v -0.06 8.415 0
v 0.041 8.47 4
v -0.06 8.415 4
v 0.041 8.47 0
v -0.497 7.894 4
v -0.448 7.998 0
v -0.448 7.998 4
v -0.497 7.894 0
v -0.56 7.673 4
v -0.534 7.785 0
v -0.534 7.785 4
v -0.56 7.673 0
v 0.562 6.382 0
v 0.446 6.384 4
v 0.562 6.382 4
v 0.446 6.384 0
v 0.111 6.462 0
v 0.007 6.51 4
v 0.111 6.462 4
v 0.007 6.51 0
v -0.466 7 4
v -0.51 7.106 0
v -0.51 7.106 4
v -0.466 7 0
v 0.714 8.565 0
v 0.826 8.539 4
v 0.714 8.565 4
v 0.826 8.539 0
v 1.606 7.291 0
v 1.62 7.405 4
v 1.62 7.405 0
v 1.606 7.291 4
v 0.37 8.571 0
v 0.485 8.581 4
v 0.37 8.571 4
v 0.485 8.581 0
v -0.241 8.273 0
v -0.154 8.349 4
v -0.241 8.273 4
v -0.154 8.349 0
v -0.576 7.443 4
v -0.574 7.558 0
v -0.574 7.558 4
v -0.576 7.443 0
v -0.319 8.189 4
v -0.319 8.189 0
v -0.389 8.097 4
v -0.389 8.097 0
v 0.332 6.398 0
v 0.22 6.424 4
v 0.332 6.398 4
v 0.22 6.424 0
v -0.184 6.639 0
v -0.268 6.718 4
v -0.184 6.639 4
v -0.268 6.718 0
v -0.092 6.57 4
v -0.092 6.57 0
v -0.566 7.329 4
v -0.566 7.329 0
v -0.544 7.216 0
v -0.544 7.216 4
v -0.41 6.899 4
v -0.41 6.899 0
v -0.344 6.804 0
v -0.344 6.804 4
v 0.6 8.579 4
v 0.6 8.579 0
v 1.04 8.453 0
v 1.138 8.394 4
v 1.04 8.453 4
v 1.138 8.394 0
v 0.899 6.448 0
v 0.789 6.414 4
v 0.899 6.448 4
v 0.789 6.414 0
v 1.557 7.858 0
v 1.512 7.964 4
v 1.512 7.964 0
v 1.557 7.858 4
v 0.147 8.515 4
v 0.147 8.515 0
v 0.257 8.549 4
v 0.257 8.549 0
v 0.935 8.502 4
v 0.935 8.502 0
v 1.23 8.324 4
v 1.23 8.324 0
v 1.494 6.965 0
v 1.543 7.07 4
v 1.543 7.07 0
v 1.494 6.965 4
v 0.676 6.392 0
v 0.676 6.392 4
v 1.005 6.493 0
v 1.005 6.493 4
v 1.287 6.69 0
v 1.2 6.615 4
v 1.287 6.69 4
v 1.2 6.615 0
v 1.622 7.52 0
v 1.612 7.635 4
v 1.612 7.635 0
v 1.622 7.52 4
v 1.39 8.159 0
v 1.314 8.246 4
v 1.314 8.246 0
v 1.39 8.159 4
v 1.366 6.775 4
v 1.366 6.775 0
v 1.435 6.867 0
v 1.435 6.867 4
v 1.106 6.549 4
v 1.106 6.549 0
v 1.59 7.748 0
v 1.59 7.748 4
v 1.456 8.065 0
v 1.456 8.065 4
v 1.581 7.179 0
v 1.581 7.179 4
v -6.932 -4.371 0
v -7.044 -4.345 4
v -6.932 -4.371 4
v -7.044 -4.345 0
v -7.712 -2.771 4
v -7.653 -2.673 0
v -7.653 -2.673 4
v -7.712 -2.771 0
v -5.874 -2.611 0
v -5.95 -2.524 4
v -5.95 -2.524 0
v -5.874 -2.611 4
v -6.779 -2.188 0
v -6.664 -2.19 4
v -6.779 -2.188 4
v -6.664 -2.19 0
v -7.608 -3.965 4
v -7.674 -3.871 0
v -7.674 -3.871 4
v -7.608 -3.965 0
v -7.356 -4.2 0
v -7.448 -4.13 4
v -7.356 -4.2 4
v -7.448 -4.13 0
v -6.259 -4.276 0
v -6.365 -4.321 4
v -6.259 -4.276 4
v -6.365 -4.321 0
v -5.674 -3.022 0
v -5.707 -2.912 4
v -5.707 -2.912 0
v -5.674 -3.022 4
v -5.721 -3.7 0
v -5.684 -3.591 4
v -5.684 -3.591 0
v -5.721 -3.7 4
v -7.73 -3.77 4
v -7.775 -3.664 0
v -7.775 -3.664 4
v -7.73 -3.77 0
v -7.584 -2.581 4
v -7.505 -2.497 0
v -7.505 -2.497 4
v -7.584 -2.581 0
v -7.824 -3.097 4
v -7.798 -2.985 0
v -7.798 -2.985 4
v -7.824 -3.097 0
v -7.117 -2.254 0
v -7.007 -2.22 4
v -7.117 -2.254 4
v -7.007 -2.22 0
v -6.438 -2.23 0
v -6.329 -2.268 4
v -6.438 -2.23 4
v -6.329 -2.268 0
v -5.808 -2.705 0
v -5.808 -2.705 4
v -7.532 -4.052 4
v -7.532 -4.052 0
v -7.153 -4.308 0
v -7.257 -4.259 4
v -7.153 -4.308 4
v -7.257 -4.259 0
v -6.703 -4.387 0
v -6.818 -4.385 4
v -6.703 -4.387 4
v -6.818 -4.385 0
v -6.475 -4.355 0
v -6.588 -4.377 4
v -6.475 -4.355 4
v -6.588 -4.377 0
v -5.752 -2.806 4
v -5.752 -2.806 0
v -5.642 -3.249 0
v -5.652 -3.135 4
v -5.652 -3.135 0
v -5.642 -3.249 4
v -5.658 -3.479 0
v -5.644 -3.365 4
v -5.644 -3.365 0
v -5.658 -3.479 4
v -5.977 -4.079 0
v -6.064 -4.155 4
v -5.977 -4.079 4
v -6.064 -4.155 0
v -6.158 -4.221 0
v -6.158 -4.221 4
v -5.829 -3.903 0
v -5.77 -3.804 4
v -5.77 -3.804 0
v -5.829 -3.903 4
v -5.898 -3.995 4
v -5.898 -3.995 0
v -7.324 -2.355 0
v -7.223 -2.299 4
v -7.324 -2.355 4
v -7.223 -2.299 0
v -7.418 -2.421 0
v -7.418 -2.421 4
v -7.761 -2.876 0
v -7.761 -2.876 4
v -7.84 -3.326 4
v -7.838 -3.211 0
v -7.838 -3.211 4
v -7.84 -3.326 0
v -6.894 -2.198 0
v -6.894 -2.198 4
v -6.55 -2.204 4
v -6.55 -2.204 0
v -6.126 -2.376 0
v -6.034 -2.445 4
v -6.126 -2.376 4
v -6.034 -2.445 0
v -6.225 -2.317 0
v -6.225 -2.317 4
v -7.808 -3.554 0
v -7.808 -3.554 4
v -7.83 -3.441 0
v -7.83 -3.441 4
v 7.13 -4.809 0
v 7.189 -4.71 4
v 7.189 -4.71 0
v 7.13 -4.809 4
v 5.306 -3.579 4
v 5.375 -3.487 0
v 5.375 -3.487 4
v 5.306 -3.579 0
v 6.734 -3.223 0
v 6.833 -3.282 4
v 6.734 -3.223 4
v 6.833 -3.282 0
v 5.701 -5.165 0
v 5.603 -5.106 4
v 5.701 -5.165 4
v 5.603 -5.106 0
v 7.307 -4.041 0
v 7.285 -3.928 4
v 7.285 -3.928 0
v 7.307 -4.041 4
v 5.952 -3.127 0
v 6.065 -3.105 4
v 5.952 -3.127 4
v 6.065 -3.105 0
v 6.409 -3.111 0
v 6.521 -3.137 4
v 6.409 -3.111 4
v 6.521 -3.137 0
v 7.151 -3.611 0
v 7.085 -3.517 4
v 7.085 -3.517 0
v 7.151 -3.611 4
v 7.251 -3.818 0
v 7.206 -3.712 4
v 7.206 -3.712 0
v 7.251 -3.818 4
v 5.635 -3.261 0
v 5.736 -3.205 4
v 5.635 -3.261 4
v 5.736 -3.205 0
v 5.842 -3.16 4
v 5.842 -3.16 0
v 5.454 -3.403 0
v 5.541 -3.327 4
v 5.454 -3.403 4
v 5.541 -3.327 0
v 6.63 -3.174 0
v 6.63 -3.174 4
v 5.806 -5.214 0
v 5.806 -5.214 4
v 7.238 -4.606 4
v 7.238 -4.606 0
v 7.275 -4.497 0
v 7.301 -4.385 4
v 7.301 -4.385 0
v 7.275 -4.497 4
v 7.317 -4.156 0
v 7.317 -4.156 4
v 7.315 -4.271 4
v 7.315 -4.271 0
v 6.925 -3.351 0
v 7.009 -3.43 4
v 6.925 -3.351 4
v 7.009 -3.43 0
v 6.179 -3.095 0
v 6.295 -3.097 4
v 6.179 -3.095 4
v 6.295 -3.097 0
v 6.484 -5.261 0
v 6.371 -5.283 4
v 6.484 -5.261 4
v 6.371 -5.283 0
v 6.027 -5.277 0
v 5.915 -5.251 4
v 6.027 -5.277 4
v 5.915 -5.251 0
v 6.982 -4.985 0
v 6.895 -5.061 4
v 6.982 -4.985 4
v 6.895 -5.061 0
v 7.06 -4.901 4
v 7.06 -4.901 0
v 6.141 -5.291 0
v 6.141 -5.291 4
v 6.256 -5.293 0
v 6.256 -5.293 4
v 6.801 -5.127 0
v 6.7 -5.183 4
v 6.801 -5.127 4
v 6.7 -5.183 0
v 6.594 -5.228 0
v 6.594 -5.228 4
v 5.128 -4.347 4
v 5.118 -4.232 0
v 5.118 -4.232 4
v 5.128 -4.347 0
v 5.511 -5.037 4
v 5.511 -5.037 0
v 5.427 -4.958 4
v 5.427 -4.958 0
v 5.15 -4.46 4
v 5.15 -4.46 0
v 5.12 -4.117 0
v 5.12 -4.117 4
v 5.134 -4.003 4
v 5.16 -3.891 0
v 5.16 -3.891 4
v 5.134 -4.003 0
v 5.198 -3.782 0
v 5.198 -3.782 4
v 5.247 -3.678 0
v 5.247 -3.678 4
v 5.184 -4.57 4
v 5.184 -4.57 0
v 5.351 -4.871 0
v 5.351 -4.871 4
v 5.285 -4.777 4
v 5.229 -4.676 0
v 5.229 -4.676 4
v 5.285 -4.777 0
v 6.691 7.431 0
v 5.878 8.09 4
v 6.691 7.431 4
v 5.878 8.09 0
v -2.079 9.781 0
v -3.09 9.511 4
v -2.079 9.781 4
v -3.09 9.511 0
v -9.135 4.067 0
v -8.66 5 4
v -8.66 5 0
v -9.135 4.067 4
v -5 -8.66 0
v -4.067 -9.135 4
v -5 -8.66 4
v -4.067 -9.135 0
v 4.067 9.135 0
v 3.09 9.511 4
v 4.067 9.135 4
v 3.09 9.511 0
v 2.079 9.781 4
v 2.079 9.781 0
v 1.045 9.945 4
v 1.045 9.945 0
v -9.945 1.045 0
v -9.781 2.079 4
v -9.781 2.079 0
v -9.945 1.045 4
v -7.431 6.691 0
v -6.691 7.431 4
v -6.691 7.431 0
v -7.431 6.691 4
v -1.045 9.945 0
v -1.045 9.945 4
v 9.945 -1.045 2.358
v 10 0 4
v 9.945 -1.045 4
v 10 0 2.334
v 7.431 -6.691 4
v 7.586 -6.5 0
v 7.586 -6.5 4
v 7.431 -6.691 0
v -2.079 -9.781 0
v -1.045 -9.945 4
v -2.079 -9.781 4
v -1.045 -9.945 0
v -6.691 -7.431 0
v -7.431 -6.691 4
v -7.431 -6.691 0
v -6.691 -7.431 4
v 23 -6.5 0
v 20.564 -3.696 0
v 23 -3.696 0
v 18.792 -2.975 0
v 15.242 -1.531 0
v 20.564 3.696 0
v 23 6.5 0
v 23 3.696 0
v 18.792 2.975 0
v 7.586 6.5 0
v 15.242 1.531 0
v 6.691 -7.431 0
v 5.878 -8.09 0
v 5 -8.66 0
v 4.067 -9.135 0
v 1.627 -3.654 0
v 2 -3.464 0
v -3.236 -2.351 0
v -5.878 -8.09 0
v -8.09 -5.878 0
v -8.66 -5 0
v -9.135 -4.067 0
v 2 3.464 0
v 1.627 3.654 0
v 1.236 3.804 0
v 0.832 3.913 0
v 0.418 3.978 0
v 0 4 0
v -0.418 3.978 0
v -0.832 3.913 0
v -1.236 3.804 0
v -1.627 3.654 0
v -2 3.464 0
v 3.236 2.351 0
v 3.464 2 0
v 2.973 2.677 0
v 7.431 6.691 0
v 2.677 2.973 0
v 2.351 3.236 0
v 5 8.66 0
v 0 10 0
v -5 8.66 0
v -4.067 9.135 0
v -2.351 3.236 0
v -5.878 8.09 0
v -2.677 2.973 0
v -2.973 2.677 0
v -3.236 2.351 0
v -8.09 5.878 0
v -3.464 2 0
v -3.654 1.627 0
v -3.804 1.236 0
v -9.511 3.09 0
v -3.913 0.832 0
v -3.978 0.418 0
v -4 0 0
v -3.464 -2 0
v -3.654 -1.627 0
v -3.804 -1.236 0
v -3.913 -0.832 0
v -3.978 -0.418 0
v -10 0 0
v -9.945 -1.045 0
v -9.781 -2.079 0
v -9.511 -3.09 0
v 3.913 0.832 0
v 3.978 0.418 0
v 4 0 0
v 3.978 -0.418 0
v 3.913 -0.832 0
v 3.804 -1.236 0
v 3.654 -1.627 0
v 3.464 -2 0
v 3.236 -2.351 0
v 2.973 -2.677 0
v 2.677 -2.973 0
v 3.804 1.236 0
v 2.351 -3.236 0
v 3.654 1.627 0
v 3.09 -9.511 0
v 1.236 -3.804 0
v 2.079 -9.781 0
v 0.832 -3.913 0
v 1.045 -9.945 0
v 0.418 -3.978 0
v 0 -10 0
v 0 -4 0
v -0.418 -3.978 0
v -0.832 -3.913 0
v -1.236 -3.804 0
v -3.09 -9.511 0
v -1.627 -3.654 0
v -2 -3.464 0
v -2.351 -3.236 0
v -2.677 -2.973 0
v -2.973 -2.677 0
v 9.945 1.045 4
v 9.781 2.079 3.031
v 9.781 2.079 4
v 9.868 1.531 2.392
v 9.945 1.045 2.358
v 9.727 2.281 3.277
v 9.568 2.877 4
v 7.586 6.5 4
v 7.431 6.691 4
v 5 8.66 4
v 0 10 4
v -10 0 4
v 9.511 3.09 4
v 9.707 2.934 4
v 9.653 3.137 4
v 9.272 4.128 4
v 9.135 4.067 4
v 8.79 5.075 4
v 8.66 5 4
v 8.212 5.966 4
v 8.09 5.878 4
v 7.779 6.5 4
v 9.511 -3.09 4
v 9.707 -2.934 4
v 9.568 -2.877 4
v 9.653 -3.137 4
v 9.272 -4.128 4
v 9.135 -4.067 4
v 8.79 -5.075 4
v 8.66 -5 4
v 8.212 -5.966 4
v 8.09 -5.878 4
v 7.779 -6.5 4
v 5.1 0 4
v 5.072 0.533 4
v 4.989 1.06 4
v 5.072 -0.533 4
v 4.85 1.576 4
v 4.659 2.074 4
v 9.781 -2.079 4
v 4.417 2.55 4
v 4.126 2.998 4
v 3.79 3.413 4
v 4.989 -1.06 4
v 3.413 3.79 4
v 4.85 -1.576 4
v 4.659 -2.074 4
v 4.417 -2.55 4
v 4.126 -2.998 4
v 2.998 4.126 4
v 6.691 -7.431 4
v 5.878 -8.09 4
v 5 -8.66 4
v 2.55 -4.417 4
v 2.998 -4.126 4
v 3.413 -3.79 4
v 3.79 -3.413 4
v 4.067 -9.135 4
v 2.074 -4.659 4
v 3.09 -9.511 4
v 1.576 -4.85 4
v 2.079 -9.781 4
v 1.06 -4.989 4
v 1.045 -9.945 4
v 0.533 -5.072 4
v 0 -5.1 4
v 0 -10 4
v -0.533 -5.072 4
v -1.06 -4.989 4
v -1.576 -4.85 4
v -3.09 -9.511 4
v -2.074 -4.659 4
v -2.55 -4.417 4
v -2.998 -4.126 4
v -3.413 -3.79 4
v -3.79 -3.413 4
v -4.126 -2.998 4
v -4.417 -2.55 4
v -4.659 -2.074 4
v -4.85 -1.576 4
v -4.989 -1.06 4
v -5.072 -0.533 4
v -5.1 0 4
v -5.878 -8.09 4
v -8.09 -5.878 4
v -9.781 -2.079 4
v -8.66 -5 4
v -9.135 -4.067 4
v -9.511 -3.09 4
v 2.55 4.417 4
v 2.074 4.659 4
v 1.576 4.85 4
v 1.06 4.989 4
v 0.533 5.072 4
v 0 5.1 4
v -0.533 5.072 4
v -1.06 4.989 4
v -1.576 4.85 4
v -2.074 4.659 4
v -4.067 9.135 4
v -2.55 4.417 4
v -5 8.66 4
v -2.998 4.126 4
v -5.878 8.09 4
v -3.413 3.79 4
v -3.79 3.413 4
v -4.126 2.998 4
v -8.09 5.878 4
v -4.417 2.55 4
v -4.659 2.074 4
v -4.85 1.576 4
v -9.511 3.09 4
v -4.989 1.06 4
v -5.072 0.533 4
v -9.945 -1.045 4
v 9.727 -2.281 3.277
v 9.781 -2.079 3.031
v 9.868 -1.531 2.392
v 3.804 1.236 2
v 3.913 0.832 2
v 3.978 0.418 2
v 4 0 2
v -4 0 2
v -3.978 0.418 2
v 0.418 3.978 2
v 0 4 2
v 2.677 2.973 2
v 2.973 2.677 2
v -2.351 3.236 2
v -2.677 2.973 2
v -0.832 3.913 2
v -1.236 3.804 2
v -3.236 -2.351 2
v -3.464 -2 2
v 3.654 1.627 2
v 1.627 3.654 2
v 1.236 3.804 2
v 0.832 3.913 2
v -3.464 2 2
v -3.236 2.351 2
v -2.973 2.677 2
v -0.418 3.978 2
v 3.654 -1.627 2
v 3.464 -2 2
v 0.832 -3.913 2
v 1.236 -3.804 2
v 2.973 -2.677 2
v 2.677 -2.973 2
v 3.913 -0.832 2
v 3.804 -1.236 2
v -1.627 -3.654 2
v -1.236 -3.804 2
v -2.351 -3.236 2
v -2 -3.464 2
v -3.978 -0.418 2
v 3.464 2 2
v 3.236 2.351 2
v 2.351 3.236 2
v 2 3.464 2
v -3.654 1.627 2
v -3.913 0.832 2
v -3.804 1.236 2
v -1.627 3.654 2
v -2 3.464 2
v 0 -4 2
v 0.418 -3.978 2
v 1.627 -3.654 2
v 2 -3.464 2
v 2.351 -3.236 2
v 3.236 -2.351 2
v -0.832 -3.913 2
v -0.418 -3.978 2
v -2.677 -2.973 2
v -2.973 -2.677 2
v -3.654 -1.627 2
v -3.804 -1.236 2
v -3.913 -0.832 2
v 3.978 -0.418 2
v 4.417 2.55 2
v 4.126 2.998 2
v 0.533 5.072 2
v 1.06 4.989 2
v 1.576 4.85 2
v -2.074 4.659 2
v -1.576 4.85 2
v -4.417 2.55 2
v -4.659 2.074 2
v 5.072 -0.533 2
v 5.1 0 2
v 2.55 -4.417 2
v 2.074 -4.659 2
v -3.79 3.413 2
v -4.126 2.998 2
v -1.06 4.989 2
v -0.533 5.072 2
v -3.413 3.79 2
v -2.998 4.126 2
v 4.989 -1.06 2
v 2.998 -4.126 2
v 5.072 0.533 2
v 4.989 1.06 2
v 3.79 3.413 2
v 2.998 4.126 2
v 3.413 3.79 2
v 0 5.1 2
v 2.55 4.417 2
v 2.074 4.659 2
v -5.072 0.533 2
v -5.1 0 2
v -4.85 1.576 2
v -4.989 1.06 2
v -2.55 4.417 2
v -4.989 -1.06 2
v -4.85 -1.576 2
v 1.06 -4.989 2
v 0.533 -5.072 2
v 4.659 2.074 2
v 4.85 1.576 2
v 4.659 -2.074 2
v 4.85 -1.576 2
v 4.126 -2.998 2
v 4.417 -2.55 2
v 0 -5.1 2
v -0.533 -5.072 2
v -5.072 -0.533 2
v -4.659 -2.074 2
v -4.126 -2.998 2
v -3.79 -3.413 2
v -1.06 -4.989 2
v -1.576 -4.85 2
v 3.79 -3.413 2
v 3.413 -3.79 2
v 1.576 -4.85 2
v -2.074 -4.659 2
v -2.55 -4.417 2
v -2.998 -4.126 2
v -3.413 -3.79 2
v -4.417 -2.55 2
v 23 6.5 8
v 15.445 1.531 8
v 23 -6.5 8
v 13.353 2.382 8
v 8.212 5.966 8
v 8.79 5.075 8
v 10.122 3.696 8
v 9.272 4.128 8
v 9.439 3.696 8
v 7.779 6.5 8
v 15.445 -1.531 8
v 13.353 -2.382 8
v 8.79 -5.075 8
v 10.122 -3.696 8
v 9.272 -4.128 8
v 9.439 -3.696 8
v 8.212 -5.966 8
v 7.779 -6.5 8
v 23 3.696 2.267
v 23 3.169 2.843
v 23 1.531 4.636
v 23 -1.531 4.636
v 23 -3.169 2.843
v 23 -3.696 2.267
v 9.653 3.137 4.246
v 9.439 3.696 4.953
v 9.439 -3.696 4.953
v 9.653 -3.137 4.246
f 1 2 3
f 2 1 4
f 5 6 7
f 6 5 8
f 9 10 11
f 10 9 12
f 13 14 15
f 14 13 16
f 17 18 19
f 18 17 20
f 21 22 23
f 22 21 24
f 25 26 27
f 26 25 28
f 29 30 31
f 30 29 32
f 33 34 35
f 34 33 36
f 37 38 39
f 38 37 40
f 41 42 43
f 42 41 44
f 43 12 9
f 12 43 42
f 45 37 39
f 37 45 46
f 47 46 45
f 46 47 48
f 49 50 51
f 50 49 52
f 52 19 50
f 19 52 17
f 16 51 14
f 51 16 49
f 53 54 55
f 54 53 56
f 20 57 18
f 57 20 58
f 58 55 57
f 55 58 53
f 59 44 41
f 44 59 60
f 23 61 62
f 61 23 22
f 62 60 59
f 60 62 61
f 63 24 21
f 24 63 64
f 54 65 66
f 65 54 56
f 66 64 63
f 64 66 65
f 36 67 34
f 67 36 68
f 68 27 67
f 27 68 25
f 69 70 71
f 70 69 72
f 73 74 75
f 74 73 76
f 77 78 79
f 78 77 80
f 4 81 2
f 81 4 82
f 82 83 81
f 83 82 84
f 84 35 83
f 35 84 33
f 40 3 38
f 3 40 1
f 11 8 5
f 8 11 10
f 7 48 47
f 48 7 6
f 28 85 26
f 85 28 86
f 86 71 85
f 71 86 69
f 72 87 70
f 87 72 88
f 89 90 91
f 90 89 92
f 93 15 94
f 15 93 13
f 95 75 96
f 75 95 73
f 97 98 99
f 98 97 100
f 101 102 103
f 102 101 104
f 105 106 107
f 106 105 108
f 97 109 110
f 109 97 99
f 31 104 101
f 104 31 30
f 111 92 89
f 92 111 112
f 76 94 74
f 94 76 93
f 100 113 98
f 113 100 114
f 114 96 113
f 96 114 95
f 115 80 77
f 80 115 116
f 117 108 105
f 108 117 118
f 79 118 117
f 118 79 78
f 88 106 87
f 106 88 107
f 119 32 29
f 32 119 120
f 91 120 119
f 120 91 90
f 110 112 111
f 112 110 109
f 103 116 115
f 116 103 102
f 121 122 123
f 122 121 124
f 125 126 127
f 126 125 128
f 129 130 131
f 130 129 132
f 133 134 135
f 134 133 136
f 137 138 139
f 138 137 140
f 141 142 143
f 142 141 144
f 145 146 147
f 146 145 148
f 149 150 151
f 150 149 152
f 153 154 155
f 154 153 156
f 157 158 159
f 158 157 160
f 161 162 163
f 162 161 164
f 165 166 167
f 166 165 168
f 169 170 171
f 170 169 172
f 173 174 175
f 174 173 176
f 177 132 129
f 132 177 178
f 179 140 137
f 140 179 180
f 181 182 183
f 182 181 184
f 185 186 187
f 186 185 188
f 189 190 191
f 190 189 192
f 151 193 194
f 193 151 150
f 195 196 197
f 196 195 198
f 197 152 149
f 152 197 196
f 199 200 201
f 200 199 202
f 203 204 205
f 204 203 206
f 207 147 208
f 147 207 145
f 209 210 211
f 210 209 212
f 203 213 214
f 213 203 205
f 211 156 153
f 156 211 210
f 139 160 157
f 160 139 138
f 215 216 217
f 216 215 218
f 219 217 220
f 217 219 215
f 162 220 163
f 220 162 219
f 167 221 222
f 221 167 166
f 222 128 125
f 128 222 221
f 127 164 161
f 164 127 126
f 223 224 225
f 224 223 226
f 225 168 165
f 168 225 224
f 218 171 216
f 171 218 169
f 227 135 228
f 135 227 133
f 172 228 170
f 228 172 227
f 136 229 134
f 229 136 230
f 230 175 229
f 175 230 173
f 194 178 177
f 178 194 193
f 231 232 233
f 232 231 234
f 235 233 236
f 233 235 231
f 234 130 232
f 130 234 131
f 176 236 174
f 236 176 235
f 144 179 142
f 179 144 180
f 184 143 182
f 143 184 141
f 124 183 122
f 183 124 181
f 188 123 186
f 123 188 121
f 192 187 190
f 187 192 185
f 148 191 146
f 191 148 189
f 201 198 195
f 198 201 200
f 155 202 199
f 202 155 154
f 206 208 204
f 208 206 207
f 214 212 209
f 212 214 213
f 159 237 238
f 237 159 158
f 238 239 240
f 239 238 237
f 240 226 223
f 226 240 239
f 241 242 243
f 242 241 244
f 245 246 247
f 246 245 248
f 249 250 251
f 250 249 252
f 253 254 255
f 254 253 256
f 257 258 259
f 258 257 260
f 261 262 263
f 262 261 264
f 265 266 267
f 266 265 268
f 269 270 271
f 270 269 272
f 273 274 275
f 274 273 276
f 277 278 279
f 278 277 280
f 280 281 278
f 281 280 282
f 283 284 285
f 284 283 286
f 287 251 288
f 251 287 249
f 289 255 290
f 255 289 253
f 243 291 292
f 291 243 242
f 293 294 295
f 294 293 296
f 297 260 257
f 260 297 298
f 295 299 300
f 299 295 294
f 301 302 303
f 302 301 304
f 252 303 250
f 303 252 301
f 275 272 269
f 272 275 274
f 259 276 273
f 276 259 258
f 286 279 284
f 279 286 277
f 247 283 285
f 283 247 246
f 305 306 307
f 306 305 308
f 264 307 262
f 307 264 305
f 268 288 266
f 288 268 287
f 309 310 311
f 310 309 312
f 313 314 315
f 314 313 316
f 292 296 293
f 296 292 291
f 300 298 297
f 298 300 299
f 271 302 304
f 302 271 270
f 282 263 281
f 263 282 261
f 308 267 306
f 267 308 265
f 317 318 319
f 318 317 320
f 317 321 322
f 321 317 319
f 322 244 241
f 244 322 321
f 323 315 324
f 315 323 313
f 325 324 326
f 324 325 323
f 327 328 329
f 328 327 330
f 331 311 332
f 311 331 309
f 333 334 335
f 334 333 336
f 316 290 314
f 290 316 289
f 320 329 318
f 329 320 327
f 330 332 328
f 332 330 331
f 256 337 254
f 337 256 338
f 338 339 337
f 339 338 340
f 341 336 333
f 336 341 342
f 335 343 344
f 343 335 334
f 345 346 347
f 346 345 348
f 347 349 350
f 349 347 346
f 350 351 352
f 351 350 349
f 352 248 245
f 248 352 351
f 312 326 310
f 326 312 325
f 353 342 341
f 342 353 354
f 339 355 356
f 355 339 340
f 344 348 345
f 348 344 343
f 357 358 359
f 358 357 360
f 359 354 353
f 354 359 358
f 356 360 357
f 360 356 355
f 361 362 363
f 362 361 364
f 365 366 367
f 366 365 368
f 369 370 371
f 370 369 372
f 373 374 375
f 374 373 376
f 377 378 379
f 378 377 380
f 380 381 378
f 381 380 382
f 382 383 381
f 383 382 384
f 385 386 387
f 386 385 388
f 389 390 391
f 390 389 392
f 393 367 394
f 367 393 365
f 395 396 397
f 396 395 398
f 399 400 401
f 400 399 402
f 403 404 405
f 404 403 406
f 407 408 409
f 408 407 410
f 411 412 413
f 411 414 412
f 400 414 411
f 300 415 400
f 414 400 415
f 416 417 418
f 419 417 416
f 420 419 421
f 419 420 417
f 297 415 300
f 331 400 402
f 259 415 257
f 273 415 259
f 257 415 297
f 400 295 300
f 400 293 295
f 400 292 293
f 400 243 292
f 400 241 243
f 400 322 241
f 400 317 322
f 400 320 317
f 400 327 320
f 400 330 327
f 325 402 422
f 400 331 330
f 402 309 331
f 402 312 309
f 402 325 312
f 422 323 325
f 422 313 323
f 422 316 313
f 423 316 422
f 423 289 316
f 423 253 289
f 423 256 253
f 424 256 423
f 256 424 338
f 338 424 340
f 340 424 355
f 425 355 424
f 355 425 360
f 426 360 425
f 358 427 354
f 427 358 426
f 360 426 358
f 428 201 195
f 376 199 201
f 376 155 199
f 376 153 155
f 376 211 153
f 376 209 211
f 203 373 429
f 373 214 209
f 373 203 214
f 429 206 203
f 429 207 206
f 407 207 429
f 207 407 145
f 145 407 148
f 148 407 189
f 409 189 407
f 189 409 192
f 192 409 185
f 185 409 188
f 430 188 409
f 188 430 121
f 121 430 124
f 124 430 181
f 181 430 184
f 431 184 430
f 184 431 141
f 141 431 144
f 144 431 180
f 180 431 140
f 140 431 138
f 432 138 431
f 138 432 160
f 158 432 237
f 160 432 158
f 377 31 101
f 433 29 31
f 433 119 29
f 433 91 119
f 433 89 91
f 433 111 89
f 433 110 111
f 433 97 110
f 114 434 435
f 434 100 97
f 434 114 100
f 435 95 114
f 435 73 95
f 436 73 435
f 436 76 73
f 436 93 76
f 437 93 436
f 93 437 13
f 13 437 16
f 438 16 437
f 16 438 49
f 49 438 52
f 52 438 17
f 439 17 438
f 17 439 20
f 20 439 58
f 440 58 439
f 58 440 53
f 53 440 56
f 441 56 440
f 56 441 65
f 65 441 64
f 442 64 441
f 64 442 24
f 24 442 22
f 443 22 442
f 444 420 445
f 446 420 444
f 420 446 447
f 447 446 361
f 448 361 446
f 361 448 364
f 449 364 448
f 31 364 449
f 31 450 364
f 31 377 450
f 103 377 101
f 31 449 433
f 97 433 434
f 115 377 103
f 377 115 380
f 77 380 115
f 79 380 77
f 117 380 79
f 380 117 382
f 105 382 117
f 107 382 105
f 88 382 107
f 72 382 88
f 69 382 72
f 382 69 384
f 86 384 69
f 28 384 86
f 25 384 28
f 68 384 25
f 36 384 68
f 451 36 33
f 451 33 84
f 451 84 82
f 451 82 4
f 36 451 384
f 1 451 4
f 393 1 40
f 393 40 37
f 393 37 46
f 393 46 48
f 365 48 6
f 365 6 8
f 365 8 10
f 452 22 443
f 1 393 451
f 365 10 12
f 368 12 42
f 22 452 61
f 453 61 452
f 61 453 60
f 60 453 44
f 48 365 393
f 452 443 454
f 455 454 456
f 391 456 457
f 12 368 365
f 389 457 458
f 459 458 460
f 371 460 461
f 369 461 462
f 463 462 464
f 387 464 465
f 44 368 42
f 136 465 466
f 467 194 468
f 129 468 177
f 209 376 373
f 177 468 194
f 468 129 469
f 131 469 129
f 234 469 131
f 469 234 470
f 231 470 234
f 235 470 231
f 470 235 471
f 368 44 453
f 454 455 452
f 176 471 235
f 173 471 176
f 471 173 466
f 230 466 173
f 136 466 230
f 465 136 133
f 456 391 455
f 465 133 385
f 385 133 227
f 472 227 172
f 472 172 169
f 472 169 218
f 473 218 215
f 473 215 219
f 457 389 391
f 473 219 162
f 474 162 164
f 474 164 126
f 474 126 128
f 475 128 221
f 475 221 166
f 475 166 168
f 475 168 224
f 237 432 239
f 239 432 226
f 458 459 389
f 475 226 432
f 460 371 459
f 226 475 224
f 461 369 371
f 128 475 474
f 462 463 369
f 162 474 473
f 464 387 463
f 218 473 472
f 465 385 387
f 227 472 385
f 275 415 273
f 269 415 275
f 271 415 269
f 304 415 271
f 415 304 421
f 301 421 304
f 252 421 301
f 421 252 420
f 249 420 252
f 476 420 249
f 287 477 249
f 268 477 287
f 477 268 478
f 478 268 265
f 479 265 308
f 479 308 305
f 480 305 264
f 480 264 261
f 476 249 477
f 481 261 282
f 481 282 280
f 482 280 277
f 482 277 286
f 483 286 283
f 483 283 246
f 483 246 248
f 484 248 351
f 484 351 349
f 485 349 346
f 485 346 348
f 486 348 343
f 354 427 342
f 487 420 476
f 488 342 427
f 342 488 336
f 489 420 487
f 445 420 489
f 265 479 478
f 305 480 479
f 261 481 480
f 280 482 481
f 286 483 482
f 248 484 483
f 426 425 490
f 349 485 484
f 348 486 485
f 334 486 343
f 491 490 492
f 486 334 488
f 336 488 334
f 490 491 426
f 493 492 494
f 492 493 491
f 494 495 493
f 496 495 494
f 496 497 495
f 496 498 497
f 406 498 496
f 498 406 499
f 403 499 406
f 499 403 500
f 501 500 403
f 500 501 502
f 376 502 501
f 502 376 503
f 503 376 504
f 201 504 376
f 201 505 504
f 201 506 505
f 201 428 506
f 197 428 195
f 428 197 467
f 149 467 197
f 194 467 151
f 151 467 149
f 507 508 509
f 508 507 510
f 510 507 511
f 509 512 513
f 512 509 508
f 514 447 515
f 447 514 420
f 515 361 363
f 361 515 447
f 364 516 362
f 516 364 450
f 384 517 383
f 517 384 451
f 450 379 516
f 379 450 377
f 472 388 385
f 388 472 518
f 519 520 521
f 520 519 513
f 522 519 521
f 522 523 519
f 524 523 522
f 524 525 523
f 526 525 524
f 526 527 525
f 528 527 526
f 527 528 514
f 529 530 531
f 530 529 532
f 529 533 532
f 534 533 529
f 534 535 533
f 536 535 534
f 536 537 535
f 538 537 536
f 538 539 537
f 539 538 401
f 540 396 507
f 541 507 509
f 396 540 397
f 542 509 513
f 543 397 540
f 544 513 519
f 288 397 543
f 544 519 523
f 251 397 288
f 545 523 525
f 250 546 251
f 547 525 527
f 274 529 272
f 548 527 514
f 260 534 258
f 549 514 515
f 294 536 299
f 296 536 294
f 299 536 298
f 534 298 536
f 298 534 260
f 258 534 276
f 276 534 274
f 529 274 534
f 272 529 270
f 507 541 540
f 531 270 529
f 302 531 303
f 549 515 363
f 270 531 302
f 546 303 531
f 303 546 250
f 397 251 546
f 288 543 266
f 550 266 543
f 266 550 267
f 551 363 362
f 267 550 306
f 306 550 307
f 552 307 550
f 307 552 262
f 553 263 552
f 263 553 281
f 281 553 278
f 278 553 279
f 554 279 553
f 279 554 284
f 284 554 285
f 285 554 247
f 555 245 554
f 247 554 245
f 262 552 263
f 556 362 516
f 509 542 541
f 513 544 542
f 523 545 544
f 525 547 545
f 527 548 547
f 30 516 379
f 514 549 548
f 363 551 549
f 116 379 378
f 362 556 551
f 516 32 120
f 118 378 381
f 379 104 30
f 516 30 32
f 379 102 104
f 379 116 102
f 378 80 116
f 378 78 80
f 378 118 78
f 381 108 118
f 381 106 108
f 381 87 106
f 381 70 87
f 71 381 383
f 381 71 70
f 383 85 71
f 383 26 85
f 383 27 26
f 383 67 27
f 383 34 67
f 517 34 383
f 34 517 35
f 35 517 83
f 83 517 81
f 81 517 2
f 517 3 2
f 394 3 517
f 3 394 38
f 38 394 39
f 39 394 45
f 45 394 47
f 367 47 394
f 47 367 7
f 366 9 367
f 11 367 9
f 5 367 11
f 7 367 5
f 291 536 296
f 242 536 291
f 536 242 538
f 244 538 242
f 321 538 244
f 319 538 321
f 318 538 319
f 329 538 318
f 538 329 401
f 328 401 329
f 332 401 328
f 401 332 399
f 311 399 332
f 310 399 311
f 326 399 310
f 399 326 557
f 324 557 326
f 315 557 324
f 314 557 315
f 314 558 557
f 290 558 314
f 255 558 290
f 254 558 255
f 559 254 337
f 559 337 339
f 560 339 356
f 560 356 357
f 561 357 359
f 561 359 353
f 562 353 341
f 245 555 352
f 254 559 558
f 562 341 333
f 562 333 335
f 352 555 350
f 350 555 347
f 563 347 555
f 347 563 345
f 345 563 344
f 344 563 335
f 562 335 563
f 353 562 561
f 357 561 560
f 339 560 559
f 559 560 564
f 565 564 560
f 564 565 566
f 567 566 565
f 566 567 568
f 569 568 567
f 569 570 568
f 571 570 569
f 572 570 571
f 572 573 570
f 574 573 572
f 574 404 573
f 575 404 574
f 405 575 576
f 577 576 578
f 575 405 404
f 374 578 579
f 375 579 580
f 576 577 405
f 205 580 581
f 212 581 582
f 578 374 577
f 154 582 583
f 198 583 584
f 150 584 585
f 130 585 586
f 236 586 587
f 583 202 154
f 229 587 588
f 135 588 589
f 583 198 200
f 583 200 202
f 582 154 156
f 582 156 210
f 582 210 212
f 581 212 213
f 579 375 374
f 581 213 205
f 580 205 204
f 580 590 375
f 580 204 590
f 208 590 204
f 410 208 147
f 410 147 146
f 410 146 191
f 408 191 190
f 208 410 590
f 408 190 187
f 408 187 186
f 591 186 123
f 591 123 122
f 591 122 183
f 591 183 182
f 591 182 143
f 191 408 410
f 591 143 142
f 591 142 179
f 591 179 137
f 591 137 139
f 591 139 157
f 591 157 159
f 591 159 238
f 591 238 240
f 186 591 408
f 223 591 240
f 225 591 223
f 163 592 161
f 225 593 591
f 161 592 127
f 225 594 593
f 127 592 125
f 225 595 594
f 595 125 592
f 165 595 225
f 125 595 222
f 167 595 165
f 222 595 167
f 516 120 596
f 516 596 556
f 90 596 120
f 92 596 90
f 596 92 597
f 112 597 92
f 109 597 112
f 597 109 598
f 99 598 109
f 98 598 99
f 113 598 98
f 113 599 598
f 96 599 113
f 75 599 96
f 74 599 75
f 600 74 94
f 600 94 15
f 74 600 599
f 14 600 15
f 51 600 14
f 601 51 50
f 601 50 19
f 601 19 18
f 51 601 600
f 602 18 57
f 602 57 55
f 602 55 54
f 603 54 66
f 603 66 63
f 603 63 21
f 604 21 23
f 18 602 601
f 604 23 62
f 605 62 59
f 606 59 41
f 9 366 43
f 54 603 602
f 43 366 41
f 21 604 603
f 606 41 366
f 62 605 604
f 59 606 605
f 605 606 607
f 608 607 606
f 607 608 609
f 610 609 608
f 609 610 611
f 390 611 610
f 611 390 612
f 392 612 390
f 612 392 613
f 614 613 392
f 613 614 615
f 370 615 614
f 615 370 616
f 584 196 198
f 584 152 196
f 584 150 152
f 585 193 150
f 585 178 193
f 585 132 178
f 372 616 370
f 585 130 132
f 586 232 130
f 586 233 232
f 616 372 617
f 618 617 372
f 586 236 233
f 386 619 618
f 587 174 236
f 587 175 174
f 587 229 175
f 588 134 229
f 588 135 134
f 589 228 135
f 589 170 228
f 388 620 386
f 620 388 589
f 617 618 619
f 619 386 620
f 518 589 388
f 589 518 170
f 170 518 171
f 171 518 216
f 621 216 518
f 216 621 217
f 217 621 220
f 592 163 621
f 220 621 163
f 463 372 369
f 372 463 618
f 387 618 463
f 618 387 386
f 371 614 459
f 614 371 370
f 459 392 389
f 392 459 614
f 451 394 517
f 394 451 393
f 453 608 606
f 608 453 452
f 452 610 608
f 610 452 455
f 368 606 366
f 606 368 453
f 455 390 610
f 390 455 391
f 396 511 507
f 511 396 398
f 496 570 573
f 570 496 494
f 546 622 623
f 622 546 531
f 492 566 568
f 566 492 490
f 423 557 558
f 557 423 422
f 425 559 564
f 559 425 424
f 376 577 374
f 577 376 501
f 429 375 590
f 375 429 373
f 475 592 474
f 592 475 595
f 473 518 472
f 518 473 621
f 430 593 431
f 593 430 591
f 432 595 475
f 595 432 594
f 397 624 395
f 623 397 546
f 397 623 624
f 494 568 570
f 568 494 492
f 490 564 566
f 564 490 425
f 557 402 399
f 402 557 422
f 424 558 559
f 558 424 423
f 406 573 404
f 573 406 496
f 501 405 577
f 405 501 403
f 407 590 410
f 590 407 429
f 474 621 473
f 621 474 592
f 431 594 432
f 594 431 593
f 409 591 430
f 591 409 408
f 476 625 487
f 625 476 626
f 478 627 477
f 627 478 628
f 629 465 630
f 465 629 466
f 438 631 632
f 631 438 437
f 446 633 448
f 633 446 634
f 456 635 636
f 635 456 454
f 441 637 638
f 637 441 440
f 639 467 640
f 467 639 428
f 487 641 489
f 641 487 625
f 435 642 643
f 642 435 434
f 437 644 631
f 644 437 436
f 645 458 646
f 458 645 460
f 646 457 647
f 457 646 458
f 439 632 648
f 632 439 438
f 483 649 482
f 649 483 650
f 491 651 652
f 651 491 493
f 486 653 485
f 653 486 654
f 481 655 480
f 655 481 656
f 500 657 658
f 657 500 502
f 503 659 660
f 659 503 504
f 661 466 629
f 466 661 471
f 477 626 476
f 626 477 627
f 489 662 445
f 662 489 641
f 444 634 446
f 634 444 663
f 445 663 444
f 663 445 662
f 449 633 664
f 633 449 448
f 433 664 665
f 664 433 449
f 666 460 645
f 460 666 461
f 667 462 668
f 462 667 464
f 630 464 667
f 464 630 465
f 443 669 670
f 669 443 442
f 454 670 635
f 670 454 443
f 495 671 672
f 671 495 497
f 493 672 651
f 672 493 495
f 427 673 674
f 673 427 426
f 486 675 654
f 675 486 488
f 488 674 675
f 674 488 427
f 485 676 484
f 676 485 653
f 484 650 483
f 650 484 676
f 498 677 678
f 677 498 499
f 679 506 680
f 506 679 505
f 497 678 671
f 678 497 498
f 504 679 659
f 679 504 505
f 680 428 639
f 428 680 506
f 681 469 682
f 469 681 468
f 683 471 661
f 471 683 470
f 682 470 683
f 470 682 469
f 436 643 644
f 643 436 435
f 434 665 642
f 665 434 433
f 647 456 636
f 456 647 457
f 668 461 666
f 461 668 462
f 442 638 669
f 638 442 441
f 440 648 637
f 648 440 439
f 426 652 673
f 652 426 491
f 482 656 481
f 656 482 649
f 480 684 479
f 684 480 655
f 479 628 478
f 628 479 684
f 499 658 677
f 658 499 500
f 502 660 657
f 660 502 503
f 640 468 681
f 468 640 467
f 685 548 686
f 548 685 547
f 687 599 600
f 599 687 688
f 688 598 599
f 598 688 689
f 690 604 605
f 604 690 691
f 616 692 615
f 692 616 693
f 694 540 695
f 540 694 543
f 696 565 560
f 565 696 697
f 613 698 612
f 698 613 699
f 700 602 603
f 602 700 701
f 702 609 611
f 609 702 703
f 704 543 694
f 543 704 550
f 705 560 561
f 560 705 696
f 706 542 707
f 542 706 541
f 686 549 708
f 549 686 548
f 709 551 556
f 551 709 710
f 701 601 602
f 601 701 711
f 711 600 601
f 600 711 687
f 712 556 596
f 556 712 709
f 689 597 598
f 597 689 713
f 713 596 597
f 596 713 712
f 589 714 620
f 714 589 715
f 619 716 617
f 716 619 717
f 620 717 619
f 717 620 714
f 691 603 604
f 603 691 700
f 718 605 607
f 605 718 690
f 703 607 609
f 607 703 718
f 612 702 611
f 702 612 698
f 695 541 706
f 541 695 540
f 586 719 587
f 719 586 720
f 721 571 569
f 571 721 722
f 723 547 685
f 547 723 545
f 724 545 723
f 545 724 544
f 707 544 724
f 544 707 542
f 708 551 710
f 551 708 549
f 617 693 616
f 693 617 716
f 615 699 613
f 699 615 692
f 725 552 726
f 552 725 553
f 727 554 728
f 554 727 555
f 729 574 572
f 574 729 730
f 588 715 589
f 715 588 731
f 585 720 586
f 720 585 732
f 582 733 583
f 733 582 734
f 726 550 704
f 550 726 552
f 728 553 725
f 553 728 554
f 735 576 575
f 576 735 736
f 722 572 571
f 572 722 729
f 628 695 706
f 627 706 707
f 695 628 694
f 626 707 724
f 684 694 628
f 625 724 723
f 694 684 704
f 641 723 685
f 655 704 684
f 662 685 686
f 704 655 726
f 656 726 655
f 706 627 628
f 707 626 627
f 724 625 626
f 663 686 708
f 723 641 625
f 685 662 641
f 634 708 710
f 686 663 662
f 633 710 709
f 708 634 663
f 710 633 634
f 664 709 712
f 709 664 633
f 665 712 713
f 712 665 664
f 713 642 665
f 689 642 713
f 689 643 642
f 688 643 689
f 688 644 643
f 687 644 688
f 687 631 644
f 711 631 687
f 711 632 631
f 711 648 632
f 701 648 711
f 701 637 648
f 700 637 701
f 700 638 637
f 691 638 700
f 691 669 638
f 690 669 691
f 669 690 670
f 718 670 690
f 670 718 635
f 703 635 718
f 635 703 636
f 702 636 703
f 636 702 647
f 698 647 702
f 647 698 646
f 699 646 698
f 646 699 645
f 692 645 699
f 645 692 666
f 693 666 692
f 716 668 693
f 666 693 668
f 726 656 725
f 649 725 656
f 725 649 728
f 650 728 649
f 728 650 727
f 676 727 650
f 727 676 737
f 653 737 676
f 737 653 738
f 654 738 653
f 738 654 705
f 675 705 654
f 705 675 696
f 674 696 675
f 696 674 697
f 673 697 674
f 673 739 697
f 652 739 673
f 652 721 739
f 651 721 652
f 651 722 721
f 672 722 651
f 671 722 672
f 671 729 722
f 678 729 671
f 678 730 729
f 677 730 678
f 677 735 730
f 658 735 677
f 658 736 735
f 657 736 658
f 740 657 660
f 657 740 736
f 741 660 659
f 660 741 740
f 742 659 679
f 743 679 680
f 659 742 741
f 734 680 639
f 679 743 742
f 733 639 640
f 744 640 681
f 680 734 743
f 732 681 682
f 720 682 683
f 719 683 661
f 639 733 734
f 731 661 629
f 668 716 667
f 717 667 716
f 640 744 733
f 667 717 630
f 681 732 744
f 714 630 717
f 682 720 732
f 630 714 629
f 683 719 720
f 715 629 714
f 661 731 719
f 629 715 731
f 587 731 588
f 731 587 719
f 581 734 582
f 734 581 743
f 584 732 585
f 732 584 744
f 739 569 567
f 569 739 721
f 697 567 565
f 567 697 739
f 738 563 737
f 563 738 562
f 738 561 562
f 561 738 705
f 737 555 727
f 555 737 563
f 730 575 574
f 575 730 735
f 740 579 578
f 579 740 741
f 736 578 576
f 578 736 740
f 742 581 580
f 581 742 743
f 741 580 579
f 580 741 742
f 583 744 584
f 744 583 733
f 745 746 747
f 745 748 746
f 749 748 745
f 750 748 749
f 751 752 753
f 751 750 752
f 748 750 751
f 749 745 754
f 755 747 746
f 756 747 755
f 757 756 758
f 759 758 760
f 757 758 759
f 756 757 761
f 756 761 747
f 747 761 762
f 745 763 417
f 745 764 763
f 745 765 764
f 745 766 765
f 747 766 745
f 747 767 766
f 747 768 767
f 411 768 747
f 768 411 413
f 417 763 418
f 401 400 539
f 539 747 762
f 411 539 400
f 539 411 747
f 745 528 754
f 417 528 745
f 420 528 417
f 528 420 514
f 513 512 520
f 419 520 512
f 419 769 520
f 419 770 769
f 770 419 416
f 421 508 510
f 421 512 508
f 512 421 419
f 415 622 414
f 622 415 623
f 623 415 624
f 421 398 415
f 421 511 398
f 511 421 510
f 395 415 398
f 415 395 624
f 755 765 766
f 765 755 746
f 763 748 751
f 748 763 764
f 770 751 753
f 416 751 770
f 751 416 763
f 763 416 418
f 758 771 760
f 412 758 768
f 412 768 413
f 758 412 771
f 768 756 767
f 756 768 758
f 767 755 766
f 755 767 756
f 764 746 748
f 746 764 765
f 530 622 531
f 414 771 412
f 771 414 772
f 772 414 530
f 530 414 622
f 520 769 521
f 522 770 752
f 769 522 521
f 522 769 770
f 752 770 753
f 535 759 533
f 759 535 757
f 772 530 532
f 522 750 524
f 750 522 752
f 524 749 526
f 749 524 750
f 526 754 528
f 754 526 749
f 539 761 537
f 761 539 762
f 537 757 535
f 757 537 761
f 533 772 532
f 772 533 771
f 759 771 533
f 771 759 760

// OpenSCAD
$fn=60;
pin();

difference(){
translate([7.5,-6.5,0])cube([15.5,13,8]);

%translate([0,0,7])rotate([0,24,0])bar(30);
translate([0,0,7])rotate([0,24,0])bar(30);
translate([0,0,4])cylinder(d=20.3,h=4);
translate([7.5,0,-1])cylinder(d=2.2,h=10);
}

module pin(){
difference(){
cylinder(d=20,h=4);
translate([0,0,-1])cylinder(d=8,h=9);
translate([0,0,2])cylinder(d=10.2,h=9);
for(i=[0:120:240]){
    rotate([0,0,i+86])
    translate([7.5,0,-1])cylinder(d=2.2,h=7);
}
}
}

module bar(length){
translate([0,0,3.5])rotate([360/16,0,0])rotate([0,90,0])
    cylinder(d=8,h=length,$fn=8);
}
